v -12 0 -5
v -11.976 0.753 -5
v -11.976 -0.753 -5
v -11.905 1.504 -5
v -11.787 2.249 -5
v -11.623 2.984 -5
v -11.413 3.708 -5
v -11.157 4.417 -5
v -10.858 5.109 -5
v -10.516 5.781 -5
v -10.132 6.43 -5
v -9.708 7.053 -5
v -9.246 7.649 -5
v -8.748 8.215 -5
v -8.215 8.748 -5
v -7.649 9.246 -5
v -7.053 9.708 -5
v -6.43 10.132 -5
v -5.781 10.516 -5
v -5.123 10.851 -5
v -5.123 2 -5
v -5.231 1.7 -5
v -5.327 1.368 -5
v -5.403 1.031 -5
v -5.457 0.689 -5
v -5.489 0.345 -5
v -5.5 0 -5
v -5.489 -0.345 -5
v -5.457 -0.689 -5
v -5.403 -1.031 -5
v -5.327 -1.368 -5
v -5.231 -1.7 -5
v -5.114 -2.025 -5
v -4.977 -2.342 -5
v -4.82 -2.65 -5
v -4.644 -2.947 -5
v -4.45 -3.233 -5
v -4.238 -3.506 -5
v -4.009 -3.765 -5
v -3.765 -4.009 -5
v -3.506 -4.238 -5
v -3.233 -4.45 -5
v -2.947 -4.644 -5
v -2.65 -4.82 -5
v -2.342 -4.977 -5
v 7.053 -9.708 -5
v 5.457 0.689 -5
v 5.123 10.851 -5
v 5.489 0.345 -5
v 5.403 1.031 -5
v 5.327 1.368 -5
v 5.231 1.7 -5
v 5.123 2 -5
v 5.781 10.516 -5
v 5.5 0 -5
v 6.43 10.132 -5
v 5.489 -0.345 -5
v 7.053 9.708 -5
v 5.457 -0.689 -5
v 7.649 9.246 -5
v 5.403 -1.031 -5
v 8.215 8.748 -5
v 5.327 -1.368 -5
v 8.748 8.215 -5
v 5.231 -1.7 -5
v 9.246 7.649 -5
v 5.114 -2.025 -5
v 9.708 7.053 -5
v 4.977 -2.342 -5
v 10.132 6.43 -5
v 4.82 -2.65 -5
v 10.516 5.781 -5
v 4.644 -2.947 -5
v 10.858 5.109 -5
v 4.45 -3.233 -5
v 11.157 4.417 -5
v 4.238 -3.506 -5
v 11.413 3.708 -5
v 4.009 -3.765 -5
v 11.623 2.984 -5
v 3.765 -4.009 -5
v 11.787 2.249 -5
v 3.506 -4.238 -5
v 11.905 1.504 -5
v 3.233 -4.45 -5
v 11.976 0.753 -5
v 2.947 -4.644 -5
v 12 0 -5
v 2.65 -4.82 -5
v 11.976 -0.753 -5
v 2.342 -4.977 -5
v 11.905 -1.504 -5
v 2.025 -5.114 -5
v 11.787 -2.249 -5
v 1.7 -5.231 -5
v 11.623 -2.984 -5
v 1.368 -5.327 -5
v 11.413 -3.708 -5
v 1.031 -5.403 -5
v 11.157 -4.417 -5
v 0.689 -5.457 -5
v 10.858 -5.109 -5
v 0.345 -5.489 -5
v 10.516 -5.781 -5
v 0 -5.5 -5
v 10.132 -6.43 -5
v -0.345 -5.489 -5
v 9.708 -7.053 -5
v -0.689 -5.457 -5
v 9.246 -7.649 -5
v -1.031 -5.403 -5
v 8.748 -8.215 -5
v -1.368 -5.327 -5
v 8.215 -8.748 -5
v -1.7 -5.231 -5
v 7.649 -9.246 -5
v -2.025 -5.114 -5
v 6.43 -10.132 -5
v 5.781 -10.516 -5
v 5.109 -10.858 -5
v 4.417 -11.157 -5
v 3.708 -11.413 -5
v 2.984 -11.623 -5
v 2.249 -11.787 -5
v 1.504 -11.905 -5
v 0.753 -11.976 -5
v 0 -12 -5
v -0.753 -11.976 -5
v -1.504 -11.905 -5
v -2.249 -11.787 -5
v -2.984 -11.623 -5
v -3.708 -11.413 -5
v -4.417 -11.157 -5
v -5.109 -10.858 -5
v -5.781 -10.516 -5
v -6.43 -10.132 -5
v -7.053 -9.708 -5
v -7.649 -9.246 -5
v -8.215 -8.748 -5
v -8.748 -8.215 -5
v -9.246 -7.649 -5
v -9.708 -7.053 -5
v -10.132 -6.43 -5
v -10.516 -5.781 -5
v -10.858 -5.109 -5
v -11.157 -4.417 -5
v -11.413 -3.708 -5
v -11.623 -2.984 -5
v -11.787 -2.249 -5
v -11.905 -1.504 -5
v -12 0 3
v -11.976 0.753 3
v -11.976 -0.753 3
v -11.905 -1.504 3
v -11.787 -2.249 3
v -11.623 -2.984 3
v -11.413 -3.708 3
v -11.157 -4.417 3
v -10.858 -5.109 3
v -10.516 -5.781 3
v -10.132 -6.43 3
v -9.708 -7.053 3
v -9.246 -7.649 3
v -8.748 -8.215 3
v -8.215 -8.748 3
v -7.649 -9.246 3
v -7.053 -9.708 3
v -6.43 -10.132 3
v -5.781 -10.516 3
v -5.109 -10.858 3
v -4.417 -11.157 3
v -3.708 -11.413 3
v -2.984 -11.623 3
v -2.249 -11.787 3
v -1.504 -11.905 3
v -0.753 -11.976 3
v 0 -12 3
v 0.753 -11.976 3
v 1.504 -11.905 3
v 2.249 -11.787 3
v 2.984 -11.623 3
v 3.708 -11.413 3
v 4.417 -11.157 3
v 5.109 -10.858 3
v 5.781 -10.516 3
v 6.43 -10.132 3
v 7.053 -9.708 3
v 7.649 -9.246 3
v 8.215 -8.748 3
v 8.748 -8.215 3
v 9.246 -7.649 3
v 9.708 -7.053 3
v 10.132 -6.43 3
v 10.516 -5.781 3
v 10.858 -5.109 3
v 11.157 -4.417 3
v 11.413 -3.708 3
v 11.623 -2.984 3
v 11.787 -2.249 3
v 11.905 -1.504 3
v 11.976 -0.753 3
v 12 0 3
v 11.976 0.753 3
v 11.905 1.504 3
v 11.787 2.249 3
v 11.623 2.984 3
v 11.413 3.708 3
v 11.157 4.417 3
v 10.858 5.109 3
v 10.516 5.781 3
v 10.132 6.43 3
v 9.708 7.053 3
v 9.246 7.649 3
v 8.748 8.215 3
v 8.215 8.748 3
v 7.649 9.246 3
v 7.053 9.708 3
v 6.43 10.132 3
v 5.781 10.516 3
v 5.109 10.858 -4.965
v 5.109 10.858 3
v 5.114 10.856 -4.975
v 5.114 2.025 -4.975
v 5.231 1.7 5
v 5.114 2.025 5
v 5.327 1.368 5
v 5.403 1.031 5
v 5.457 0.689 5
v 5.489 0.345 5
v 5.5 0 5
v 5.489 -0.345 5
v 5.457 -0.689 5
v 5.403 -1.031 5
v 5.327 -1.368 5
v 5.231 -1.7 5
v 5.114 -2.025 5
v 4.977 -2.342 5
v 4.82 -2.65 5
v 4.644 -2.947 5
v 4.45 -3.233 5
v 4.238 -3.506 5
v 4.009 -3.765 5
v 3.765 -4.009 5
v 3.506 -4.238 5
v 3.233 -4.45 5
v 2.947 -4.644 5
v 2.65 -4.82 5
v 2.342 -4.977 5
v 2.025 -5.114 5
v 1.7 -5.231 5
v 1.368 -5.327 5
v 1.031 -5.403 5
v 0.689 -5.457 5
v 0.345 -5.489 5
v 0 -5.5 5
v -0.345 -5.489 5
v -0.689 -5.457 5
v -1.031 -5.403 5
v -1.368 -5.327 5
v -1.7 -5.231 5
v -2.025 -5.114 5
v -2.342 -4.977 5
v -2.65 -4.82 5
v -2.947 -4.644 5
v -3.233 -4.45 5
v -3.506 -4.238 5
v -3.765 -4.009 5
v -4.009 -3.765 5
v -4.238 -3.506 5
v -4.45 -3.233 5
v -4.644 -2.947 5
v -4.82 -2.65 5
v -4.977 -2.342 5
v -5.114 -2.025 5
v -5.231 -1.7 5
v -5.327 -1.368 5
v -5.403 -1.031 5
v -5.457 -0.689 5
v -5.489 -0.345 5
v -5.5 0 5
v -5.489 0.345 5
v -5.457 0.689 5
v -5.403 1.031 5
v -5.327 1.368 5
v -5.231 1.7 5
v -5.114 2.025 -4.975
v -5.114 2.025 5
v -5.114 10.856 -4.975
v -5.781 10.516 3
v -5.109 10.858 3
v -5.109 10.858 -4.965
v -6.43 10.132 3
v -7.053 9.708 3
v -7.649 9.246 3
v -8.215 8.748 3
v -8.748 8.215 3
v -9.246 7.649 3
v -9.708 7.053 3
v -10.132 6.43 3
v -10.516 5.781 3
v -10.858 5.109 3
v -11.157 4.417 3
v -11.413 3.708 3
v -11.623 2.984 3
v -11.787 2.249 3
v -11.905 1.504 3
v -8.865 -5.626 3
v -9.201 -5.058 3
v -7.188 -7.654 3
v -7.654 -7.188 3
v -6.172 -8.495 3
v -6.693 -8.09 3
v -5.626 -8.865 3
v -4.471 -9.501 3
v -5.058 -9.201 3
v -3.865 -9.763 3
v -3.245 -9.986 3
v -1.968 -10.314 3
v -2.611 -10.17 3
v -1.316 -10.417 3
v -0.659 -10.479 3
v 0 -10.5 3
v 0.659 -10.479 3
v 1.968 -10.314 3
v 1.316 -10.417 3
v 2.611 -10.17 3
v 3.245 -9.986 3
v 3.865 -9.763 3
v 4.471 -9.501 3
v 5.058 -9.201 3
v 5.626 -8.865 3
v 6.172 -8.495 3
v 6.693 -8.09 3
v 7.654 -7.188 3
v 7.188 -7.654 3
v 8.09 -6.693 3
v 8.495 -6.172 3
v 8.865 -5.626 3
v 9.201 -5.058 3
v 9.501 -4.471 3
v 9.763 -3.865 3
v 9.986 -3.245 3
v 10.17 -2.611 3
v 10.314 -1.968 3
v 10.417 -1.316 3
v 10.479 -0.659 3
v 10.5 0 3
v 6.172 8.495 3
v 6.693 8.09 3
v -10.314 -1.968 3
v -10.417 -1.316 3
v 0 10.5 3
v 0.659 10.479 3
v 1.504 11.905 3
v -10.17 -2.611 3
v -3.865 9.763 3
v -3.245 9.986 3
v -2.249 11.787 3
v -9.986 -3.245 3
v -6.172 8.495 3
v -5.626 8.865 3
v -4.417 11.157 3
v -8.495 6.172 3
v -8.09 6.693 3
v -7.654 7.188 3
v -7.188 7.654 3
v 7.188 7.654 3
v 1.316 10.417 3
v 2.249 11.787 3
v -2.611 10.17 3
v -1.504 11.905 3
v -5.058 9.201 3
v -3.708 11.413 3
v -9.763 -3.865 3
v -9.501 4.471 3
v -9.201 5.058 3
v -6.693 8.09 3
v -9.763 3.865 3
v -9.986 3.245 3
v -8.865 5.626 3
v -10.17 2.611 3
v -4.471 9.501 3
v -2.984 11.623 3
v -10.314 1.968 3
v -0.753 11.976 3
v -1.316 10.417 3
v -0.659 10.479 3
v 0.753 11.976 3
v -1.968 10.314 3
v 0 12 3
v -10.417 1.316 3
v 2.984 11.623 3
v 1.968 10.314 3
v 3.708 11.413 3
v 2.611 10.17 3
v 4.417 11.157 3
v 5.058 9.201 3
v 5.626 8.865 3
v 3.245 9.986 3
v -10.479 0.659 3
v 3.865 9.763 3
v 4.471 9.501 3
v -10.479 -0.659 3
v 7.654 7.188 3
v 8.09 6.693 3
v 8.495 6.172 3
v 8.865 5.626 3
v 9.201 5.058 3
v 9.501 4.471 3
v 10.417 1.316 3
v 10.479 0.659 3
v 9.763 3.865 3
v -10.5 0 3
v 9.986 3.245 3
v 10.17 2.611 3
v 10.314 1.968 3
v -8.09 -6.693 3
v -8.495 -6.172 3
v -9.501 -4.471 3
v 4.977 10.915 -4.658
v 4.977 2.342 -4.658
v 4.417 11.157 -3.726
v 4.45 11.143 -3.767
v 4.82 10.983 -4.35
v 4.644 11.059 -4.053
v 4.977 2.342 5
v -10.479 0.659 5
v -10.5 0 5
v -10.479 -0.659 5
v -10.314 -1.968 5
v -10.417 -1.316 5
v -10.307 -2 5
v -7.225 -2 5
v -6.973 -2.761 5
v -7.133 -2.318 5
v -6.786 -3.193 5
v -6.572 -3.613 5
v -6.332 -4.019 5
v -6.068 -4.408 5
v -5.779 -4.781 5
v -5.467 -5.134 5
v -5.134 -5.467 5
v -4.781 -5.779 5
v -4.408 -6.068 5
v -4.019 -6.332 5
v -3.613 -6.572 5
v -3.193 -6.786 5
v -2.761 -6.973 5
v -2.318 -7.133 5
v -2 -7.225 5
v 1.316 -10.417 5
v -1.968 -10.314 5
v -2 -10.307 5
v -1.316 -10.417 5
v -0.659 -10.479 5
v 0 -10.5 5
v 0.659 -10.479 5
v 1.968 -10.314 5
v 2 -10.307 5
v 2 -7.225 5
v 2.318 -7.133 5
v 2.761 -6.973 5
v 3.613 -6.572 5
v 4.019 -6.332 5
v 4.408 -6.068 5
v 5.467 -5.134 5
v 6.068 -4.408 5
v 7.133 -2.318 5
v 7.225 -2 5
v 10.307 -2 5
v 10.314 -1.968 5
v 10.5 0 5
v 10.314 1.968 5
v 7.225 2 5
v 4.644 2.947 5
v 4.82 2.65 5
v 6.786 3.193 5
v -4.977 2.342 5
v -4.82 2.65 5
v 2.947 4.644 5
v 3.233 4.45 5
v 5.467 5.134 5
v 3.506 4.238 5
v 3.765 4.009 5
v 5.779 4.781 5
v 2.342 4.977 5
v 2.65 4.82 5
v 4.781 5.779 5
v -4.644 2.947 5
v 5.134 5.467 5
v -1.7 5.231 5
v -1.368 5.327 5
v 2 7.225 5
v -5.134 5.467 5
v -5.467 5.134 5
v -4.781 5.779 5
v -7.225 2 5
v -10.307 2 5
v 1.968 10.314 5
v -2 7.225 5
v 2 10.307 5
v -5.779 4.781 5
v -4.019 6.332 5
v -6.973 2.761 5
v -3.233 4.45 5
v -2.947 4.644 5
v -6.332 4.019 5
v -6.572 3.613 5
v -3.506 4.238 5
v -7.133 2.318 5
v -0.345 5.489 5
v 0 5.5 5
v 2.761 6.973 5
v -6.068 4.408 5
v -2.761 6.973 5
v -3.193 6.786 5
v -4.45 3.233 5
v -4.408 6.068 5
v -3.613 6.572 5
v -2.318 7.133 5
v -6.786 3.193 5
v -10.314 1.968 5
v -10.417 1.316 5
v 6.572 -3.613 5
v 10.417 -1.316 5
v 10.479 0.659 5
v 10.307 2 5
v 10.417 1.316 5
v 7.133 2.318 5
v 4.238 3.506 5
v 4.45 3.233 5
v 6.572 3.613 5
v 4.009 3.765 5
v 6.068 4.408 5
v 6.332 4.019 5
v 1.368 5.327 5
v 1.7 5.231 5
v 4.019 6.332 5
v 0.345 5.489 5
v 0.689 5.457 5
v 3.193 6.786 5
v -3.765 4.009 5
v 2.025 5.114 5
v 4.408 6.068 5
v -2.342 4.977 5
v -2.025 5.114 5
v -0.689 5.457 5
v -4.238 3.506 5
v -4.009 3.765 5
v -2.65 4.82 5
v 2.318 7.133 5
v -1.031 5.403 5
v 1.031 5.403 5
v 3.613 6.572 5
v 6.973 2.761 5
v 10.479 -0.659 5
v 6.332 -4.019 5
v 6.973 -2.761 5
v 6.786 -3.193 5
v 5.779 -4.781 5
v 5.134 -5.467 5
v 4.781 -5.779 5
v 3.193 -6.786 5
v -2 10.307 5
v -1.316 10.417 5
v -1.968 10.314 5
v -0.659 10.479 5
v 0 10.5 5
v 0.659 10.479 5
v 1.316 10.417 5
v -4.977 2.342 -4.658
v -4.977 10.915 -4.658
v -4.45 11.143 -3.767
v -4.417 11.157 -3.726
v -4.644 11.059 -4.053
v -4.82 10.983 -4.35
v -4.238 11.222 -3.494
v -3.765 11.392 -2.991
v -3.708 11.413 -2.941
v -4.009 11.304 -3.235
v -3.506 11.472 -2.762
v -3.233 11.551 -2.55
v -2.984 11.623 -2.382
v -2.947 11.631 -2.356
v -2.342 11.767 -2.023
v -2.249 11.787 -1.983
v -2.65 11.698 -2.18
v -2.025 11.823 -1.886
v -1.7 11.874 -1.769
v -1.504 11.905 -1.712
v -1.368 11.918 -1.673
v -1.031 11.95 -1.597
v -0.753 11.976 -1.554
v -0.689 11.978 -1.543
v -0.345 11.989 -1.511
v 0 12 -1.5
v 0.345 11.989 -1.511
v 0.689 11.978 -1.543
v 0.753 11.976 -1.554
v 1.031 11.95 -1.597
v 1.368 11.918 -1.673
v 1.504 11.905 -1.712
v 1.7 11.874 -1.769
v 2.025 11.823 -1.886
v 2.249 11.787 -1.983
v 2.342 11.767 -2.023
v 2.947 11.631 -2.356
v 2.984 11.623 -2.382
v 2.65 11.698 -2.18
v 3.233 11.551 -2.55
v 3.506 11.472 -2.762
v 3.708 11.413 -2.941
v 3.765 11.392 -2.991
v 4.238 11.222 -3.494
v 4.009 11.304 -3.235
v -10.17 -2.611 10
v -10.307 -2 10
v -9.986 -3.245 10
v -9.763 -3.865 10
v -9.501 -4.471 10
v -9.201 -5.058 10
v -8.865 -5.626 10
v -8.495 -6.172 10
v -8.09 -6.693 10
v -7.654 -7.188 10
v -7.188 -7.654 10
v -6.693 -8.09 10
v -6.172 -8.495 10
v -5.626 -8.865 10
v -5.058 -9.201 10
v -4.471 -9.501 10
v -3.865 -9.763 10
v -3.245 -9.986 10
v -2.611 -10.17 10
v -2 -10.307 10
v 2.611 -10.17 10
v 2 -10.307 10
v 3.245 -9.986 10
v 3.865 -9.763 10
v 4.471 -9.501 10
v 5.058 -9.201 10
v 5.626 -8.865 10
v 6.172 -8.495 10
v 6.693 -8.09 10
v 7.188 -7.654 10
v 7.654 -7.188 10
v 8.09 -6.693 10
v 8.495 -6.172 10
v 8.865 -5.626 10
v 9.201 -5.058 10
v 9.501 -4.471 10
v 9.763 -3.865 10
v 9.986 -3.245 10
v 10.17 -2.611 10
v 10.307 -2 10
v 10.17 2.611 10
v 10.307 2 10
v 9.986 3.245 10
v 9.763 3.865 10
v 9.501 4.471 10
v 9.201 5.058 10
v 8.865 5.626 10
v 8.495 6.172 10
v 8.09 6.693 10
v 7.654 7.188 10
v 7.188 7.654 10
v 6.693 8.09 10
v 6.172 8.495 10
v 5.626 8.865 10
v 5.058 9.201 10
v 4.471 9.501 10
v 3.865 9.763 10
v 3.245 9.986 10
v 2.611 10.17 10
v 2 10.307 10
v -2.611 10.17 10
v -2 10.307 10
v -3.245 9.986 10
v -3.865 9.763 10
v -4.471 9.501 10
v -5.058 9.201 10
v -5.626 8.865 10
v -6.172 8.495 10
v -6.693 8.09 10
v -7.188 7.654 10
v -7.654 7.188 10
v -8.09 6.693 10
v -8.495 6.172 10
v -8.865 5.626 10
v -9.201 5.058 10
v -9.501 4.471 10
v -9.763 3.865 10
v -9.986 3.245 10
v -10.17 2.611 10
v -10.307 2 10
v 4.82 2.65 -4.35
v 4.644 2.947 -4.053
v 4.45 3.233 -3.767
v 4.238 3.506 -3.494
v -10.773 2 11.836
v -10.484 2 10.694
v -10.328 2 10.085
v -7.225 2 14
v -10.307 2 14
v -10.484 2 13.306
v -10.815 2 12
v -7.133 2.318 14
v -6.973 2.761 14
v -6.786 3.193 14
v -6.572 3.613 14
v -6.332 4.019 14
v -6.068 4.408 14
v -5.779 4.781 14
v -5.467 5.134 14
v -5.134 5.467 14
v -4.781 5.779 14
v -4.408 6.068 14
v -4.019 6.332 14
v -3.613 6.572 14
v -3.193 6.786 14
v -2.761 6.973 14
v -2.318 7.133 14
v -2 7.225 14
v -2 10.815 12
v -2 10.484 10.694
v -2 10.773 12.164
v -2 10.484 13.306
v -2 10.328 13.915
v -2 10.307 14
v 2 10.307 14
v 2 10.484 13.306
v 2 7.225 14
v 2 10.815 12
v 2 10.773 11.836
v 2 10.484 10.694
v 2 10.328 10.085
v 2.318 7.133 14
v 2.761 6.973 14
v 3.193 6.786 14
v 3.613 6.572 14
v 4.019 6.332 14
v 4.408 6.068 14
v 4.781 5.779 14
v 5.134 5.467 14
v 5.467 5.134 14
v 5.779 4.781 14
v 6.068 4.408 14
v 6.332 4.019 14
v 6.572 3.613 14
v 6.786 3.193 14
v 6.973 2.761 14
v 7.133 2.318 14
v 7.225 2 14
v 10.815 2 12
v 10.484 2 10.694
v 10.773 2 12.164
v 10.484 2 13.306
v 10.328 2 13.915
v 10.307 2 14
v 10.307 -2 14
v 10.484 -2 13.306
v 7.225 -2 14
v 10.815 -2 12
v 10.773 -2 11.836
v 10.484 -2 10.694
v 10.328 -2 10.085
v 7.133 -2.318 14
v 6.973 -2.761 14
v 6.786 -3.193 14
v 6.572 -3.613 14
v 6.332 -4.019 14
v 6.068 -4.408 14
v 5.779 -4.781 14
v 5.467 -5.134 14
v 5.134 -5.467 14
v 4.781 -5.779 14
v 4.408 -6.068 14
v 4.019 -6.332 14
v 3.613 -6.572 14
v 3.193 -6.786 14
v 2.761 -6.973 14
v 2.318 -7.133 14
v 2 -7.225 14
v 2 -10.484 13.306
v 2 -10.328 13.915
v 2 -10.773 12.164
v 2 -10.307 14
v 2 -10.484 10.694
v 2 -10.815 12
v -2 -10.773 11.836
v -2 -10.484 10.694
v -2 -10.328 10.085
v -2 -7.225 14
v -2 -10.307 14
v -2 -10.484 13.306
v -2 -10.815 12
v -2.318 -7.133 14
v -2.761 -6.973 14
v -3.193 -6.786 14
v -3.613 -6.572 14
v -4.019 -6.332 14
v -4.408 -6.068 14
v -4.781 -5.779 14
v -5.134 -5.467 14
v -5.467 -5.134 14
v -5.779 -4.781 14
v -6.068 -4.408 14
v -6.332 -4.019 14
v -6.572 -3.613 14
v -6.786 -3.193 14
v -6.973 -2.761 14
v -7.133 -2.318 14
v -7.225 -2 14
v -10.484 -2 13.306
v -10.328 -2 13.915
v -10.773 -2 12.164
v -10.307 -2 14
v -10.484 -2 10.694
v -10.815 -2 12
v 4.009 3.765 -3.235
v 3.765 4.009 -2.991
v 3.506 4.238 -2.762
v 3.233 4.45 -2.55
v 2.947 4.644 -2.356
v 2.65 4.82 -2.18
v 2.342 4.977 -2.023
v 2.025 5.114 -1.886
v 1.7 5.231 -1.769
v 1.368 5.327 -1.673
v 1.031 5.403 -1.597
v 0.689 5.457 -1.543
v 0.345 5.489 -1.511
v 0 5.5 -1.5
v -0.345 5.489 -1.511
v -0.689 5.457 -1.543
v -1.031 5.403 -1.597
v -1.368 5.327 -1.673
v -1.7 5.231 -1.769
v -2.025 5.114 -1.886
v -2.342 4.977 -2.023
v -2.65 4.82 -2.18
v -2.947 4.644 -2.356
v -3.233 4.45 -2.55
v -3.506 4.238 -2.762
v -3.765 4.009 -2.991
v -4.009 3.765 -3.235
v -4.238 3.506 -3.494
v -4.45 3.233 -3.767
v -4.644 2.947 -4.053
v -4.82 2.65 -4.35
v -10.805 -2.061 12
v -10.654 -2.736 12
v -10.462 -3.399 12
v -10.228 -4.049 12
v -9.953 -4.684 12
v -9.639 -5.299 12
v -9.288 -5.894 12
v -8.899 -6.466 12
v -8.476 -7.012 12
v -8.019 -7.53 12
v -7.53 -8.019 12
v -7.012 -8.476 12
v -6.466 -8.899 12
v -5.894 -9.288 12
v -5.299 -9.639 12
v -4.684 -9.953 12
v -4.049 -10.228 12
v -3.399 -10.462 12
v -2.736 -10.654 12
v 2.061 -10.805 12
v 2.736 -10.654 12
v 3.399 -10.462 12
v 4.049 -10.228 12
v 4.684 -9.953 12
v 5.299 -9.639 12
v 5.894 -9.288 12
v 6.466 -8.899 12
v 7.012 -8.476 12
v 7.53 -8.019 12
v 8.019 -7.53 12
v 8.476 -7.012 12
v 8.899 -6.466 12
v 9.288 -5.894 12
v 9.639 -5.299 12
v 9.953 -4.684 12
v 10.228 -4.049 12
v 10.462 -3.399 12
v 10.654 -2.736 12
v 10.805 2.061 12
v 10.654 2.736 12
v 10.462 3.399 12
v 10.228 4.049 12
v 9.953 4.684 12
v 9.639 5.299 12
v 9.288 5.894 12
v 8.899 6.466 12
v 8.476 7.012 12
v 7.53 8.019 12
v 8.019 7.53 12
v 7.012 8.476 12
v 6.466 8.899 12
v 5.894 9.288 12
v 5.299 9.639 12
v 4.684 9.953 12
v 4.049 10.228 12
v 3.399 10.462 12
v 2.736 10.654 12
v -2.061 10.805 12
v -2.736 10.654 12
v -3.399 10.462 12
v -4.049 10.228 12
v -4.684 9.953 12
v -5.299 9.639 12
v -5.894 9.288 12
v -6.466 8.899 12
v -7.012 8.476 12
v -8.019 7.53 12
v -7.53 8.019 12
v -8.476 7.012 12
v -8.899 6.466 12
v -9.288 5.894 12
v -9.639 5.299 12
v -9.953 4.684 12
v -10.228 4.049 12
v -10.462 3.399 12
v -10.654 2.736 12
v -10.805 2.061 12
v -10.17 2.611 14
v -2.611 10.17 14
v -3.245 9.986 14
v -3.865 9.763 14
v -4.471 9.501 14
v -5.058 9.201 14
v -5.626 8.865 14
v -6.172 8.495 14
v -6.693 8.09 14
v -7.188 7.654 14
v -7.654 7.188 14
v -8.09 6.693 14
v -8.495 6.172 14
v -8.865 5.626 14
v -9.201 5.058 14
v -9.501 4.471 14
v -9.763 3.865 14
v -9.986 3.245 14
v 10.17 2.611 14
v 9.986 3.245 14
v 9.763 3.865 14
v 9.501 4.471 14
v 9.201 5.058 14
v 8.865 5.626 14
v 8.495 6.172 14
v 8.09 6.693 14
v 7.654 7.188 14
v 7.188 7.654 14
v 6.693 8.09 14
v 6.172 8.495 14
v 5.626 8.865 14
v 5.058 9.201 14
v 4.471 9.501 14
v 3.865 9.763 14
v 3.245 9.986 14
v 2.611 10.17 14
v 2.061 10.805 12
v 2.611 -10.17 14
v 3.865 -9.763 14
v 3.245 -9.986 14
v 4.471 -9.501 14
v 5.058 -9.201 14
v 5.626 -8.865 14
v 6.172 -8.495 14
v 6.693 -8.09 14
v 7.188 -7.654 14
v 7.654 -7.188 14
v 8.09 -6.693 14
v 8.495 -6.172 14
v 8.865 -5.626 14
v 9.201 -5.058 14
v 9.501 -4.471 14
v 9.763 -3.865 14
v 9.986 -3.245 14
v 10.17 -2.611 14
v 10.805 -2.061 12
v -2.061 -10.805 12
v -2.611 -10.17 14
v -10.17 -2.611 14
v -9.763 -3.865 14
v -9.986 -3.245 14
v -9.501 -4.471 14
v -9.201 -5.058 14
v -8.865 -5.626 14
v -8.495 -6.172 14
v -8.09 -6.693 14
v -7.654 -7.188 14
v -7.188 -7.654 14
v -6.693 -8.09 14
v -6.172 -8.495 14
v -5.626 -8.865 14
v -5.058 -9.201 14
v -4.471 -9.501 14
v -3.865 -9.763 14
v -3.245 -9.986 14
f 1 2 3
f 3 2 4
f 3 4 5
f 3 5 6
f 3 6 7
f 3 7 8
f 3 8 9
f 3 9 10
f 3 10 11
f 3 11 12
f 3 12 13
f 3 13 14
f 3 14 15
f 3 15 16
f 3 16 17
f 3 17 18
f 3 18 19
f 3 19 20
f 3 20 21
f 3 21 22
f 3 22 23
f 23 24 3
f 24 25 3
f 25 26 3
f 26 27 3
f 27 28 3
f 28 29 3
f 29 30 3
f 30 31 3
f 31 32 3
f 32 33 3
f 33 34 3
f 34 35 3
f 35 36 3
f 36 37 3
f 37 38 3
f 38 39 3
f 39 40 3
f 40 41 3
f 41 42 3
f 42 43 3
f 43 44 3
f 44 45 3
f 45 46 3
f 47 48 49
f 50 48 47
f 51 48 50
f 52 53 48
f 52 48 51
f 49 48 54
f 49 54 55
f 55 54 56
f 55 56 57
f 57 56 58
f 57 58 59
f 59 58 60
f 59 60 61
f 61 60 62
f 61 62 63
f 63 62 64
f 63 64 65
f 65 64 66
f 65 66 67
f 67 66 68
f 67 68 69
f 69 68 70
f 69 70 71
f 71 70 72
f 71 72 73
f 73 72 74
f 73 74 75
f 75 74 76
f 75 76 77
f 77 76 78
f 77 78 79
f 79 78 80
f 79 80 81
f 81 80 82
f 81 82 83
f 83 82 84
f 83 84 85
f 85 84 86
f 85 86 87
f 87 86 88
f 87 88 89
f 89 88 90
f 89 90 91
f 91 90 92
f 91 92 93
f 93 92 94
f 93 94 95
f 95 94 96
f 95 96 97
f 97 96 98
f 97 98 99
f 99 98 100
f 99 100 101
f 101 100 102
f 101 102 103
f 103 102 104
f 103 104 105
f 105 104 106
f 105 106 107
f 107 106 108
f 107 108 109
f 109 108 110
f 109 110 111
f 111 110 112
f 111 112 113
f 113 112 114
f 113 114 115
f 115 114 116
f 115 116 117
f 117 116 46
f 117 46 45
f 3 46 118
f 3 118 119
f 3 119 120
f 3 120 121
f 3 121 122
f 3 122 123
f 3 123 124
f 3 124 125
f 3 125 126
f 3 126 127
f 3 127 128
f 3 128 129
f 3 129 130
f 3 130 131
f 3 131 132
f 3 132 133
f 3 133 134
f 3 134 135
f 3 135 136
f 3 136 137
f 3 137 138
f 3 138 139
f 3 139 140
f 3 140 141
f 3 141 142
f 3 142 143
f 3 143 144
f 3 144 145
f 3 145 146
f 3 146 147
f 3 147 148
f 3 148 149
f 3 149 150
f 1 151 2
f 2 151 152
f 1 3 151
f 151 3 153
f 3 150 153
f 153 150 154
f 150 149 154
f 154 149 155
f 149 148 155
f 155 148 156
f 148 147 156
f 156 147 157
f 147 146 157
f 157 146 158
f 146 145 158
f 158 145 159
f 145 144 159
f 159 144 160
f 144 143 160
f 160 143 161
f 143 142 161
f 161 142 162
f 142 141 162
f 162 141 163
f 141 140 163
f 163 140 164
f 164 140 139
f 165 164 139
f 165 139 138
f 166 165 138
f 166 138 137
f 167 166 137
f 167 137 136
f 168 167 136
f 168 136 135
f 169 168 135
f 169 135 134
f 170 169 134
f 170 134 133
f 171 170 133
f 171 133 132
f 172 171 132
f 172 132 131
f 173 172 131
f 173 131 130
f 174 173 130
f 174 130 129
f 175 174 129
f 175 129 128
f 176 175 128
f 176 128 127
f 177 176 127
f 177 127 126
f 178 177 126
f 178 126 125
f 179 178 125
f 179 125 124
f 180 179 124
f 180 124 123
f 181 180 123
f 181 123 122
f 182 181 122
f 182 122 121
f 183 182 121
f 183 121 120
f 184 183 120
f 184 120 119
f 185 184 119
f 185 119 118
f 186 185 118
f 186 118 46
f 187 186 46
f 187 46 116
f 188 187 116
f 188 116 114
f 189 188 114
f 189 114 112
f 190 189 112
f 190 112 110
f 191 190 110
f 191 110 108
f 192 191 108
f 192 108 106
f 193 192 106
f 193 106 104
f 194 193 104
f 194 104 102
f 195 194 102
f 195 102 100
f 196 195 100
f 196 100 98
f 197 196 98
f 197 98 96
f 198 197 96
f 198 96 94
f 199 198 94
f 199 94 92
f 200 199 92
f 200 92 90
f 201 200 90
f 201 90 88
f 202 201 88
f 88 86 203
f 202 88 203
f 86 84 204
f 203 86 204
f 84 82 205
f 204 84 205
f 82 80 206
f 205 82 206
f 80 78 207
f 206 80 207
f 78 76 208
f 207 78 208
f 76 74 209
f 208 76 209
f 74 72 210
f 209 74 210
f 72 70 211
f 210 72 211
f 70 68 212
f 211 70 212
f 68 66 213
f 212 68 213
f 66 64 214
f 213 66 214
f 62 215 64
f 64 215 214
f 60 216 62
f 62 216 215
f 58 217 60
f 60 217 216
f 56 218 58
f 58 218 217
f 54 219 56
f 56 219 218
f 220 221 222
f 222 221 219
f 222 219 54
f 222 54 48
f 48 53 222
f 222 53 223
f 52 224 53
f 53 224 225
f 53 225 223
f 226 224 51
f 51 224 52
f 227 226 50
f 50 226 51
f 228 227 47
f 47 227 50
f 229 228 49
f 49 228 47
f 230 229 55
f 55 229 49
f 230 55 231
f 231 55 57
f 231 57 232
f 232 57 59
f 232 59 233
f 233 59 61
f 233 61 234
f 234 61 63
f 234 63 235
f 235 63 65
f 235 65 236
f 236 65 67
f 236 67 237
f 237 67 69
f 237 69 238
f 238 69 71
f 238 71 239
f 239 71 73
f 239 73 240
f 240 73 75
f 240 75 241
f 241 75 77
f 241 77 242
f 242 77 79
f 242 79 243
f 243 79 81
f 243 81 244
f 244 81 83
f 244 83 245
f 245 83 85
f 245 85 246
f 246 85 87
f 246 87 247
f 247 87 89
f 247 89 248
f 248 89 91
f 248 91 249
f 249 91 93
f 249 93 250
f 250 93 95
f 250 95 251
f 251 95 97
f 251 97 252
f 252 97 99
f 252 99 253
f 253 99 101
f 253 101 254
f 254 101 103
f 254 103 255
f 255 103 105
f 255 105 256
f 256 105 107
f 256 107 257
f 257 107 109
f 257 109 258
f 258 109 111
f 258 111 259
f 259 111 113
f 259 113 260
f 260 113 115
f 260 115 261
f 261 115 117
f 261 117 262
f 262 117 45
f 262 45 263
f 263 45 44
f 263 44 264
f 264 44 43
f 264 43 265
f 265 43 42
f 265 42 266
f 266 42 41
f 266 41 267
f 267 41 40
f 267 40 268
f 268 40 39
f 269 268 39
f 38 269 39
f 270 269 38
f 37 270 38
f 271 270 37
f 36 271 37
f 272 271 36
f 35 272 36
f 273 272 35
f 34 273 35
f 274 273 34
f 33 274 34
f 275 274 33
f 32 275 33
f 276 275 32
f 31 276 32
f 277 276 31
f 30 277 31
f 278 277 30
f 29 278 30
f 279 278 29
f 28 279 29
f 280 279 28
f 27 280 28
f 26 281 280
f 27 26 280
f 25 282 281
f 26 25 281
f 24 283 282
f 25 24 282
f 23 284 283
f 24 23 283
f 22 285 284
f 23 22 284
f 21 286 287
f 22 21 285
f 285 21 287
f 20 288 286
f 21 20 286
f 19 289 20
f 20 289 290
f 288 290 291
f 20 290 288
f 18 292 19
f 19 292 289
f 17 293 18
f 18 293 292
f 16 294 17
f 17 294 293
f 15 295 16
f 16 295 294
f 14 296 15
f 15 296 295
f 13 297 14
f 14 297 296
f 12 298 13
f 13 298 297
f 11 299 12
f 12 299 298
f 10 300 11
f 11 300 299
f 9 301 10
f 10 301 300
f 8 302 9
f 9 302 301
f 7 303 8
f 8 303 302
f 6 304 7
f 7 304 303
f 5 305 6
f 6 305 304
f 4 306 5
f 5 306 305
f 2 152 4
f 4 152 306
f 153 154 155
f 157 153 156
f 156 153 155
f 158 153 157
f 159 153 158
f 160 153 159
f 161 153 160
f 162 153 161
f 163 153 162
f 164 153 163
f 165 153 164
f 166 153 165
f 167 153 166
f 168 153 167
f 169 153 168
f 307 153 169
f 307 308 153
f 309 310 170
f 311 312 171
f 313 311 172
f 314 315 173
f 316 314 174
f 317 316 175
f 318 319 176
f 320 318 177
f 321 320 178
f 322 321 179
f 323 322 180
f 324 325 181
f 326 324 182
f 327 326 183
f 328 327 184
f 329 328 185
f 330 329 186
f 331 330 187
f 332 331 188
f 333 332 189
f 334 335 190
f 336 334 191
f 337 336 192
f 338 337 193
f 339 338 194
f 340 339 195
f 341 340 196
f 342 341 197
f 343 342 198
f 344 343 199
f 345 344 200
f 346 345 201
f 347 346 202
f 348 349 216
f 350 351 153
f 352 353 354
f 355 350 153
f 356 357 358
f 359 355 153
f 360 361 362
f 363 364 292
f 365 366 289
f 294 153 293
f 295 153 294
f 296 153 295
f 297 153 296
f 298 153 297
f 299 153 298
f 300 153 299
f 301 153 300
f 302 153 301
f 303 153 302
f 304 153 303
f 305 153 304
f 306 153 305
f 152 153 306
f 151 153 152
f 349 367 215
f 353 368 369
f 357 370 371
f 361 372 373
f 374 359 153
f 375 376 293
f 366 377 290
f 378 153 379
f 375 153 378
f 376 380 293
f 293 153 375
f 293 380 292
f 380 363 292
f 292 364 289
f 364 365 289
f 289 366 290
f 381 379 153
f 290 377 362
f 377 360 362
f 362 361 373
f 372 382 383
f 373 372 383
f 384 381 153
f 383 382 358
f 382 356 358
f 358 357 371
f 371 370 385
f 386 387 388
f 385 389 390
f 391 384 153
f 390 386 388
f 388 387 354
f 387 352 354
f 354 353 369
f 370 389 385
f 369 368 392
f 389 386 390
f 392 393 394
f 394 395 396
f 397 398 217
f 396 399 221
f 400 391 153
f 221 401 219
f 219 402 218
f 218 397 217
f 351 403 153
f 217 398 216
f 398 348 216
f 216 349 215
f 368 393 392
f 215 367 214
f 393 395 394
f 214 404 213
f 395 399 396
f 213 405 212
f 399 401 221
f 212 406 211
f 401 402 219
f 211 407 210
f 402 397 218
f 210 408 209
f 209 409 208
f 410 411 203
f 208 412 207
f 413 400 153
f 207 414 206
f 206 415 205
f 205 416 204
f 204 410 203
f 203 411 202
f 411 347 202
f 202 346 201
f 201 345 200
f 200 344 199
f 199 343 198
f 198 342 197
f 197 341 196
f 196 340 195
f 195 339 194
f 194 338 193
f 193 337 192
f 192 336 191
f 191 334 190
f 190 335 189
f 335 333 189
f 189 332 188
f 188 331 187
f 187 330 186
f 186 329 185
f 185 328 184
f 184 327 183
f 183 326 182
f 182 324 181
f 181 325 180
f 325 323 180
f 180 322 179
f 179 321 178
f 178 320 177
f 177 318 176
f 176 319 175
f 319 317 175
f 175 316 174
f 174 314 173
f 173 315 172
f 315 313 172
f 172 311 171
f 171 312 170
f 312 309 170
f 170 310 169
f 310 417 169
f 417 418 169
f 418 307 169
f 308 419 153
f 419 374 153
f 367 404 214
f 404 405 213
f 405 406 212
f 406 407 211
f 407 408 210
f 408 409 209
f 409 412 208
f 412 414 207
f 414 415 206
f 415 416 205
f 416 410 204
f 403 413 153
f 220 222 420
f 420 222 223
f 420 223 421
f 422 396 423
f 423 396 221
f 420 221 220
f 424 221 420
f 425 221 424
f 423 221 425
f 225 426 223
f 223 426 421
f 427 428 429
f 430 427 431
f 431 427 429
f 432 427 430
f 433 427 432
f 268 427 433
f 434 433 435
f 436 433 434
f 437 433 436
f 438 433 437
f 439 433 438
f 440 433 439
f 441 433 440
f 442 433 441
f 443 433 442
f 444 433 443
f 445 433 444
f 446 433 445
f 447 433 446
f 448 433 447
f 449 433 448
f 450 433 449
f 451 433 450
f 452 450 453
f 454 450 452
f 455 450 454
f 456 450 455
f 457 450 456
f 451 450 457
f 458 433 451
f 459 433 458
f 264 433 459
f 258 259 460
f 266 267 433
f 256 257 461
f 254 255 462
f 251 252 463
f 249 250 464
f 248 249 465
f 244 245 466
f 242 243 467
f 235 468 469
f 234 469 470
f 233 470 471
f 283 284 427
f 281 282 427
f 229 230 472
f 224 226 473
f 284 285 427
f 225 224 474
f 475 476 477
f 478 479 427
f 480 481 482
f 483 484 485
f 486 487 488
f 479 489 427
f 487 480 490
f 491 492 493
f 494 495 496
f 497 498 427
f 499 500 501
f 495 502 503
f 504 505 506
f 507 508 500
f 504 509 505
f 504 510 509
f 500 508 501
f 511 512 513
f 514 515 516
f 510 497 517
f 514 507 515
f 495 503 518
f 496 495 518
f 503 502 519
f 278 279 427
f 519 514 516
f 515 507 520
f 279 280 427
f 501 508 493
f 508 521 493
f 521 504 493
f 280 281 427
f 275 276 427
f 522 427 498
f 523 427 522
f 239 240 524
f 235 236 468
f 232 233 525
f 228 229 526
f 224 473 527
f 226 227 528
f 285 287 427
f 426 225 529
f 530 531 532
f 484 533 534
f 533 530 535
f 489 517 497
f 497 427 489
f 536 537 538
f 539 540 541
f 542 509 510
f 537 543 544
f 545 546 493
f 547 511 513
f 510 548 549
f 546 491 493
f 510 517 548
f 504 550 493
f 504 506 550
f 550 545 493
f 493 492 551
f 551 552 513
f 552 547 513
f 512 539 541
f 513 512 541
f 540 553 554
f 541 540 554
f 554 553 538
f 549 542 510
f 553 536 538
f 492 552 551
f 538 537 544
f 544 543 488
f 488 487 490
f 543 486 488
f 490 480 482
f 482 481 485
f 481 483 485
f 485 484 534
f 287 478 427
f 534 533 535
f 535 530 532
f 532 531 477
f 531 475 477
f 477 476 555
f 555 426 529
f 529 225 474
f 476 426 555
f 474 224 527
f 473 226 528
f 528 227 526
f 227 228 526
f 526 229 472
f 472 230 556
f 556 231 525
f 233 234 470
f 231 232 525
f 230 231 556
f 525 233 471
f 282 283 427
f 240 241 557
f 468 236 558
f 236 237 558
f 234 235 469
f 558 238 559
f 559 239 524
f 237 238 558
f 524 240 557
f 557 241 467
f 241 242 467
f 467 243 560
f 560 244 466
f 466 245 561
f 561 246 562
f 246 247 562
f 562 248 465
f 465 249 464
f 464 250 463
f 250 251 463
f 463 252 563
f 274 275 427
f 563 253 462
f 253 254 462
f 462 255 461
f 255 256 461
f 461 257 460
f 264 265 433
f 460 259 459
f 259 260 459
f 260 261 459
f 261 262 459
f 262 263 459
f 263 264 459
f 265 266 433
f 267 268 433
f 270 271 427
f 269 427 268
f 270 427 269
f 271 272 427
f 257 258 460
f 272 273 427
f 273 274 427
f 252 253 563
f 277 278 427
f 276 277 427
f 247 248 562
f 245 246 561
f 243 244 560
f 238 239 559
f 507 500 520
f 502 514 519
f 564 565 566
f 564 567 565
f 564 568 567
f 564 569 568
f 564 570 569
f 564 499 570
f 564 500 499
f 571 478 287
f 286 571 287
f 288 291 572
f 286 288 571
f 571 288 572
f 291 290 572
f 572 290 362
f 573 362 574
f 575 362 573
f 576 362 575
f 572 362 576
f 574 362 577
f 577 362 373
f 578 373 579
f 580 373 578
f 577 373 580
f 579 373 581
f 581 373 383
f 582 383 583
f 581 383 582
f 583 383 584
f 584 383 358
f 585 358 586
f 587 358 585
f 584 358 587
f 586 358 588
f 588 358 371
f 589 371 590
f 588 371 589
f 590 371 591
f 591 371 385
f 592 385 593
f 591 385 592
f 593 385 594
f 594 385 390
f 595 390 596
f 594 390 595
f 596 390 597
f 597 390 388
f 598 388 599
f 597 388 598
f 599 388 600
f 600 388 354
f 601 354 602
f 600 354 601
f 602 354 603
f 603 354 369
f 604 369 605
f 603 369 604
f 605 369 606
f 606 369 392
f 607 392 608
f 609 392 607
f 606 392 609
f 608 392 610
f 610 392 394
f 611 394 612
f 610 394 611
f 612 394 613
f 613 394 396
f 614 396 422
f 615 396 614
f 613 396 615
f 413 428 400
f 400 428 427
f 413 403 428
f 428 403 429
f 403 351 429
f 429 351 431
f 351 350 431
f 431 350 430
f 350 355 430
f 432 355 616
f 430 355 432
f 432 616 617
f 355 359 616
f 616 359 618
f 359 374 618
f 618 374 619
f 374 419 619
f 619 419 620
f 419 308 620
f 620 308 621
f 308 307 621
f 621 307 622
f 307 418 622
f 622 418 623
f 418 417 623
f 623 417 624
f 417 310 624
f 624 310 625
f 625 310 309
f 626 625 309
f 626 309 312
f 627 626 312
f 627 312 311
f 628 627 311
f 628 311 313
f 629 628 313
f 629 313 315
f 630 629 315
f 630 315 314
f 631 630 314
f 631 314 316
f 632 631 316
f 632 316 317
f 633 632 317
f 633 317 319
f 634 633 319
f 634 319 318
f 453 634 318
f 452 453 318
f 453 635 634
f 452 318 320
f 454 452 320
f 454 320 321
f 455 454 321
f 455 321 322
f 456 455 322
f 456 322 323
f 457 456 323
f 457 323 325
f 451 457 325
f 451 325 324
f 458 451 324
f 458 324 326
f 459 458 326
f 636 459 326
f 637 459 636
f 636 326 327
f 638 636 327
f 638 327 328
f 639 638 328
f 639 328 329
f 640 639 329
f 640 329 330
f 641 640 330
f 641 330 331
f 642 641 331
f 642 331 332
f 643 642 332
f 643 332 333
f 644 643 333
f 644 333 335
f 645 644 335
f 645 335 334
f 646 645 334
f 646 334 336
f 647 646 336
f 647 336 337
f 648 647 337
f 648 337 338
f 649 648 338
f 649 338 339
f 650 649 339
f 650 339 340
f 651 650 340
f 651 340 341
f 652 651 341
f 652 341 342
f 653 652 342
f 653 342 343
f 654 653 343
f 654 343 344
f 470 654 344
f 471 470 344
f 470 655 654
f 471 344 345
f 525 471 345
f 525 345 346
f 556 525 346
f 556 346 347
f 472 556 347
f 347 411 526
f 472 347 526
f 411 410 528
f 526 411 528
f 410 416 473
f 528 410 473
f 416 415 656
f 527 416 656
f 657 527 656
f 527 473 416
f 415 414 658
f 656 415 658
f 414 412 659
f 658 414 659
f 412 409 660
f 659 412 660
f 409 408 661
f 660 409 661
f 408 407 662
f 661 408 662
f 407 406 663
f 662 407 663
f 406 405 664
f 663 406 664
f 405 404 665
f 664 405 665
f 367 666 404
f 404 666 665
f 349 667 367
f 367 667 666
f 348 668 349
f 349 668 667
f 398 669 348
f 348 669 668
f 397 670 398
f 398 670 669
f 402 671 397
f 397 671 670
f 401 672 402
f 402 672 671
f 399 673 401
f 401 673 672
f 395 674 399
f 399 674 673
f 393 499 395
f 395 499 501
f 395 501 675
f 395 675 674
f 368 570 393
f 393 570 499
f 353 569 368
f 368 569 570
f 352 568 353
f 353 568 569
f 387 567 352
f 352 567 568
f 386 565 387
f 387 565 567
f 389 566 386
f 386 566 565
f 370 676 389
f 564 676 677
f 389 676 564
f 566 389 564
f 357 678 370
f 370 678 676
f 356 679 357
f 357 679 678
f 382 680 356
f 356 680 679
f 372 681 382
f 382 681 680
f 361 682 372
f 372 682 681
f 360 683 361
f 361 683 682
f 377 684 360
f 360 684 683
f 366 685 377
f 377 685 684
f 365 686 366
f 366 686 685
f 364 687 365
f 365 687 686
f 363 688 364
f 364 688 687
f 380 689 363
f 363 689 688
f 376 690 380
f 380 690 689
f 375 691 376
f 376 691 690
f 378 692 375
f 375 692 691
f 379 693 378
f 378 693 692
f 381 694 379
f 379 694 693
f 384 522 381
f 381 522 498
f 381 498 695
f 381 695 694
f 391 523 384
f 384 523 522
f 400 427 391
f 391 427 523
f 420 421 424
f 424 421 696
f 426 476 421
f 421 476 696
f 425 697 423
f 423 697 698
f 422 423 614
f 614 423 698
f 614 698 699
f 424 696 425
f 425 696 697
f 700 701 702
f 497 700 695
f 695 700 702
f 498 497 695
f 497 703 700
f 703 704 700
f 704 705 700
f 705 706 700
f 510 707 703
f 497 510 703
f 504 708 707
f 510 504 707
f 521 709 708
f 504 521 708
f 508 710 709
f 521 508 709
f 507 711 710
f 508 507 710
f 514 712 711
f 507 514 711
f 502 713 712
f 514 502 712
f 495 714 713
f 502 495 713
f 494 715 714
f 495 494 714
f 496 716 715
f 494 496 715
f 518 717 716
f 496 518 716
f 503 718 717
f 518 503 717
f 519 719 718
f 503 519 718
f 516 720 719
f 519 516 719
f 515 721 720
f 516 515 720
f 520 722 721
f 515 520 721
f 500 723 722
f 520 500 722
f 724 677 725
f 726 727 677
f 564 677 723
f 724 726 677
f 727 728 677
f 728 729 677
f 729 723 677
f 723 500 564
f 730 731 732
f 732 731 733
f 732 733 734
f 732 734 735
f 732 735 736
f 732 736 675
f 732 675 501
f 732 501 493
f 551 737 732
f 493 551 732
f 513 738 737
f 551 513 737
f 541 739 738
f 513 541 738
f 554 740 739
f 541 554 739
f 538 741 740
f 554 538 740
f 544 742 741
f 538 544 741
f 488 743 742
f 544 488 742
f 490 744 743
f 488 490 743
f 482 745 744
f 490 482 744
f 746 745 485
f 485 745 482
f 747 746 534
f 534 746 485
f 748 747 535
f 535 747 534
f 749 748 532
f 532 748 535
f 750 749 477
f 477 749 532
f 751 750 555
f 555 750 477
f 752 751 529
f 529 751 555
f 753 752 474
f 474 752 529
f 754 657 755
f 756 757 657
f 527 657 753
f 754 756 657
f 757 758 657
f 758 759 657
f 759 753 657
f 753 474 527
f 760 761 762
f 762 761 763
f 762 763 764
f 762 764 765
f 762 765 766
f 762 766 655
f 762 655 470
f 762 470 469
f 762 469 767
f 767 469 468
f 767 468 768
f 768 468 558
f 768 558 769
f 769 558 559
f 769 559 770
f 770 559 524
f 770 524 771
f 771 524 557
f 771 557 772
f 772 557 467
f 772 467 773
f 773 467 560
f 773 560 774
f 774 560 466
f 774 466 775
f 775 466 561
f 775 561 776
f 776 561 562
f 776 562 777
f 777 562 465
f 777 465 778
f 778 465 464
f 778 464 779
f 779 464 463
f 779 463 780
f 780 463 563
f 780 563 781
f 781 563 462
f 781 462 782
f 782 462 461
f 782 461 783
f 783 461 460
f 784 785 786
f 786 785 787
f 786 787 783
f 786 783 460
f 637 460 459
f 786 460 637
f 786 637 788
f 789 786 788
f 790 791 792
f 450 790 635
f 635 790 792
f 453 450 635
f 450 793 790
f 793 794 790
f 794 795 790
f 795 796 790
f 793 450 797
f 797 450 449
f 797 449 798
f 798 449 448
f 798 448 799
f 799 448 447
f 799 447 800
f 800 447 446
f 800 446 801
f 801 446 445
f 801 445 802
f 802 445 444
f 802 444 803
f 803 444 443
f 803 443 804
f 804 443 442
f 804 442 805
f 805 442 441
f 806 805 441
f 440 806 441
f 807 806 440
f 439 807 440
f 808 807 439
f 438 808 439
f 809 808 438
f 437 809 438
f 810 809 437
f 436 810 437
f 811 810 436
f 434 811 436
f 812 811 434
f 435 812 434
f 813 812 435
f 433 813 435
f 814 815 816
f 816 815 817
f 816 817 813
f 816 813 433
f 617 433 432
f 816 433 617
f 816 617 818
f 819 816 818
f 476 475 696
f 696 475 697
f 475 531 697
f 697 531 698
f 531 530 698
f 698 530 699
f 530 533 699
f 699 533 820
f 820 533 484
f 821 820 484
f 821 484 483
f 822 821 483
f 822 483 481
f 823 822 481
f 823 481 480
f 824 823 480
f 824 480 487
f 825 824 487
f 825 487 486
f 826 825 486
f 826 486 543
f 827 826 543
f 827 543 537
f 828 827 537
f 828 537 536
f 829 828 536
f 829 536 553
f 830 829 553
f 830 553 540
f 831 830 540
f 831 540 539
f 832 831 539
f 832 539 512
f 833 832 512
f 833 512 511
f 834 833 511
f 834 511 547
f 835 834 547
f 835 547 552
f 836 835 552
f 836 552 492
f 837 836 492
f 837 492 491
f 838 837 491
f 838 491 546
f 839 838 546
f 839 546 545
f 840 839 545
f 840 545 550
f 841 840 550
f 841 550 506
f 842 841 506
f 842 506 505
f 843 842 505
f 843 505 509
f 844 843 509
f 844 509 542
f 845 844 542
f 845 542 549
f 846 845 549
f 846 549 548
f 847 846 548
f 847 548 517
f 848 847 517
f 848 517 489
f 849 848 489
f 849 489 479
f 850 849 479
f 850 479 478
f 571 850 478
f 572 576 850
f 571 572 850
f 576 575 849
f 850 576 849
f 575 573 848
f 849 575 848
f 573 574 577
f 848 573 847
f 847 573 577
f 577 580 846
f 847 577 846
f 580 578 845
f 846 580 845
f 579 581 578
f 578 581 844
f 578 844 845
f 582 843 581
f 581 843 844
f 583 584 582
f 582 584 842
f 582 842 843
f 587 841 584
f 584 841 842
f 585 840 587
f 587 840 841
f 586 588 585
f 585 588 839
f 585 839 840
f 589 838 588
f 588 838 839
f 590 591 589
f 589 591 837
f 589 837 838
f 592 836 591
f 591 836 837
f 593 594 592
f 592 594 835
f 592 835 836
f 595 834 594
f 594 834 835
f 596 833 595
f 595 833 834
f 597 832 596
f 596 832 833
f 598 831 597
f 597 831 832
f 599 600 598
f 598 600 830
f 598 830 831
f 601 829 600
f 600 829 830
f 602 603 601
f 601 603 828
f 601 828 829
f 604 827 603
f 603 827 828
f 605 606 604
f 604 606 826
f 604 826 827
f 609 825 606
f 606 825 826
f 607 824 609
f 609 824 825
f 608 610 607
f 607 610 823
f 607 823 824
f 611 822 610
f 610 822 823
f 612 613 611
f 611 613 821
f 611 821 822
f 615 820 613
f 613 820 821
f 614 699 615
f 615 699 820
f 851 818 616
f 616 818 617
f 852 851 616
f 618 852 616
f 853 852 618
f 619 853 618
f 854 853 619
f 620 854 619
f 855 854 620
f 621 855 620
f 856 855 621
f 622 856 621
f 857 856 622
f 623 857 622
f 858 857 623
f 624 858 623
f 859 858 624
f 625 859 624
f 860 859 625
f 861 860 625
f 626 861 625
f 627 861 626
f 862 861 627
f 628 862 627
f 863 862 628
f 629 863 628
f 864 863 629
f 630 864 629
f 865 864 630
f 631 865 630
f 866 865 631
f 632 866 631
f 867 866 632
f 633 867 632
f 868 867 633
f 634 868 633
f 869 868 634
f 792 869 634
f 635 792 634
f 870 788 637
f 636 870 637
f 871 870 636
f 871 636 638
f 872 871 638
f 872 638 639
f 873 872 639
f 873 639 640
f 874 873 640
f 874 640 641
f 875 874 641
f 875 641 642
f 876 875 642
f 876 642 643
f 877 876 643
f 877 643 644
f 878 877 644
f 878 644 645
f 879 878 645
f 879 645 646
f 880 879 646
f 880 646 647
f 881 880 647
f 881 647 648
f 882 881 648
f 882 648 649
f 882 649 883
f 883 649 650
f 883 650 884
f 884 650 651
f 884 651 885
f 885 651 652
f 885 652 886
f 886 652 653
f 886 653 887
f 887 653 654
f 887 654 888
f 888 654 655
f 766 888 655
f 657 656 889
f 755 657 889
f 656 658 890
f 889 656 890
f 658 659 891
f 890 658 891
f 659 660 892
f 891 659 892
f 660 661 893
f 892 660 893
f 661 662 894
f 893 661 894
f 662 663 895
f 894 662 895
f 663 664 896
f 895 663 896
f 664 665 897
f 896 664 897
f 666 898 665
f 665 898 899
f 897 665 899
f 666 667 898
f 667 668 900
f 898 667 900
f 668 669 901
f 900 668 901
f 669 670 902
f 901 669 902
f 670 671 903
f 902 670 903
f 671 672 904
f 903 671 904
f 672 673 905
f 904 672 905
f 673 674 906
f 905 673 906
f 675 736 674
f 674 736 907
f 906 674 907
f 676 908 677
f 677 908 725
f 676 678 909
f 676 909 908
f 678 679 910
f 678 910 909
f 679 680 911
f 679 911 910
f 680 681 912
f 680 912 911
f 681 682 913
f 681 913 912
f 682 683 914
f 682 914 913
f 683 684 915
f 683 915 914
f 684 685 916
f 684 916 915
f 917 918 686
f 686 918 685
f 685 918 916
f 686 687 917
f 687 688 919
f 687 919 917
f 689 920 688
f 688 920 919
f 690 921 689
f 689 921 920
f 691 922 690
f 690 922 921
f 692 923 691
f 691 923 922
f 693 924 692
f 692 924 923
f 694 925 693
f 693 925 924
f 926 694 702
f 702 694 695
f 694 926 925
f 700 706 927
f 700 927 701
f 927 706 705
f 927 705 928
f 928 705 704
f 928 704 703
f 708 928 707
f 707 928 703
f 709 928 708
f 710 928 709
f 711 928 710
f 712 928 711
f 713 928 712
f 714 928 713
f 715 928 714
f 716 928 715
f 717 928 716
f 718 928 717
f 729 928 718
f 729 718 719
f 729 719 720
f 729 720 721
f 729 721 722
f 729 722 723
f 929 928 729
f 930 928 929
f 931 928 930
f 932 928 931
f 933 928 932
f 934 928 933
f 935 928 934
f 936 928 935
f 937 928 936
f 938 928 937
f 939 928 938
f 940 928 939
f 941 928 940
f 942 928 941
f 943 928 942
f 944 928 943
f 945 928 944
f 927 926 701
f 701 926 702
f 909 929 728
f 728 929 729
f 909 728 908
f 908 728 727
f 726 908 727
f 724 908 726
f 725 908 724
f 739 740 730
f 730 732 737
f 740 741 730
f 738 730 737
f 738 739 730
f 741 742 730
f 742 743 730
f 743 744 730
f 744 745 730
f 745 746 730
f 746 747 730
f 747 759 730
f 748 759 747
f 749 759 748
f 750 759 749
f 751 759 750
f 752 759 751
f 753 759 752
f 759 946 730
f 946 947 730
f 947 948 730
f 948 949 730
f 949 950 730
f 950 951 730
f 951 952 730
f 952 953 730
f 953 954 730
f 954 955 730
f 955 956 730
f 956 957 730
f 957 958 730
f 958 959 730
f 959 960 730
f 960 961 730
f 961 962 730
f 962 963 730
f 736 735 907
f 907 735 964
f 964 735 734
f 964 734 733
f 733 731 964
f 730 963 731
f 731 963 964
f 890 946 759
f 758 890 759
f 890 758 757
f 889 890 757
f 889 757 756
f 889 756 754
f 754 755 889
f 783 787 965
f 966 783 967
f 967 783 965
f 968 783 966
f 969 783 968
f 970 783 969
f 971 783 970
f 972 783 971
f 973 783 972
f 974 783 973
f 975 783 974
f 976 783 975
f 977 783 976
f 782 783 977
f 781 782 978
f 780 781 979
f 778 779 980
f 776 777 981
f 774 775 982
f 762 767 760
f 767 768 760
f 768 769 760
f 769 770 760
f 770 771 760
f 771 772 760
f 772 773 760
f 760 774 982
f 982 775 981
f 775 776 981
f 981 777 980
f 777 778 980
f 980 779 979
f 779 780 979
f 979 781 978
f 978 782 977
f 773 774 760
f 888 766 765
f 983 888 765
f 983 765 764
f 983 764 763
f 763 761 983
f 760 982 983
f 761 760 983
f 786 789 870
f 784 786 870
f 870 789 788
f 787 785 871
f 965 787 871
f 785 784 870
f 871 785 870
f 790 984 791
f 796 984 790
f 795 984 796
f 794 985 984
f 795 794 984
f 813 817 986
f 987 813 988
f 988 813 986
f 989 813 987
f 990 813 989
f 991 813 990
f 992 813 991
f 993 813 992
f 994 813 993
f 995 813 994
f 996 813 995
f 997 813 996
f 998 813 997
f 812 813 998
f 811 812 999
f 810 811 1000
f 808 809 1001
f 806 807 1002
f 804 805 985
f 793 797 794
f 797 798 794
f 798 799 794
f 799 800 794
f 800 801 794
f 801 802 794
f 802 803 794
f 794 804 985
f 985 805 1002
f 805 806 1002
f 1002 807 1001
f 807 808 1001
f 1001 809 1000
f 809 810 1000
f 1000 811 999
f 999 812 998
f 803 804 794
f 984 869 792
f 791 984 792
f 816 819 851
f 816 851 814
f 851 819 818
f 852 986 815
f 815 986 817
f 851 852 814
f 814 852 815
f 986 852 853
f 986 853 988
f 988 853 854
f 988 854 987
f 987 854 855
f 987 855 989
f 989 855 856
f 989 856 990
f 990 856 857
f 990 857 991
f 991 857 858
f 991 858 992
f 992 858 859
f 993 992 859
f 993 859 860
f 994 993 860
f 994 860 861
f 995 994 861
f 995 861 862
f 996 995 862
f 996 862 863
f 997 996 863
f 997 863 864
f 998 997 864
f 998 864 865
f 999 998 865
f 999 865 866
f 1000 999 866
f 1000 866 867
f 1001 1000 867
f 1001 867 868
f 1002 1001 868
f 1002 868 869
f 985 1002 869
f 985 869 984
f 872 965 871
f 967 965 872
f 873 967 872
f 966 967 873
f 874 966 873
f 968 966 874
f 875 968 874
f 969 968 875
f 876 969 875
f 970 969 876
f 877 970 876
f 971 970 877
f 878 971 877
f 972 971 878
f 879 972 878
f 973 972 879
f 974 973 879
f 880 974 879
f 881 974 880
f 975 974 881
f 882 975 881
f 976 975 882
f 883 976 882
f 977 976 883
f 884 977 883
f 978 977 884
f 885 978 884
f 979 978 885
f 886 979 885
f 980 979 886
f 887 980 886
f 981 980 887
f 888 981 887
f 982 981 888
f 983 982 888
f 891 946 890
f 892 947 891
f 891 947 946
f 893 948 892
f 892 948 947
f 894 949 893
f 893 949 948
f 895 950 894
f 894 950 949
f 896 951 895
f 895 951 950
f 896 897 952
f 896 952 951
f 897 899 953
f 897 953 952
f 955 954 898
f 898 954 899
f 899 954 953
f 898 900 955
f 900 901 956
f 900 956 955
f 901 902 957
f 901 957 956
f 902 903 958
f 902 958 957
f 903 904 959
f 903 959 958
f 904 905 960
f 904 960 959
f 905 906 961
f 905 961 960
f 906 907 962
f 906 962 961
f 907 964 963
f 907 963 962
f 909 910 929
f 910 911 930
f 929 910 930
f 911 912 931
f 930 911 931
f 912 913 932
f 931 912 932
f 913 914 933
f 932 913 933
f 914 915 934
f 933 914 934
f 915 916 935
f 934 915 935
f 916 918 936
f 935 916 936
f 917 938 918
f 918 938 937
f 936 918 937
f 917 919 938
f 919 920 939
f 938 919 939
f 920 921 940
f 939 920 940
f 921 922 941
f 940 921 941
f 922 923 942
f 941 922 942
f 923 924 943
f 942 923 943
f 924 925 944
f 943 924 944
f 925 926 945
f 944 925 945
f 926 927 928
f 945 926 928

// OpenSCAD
$fn=100;

plugOD = 24;
plugID = 11;
height = 10;
clipheight = 12;


annulus();
translate([0,0,clipheight/2+2]) clips();


module annulus(){

difference(){
cylinder(r=plugOD/2,h=height,center=true);

difference(){
translate([0,0,height-2]) cylinder(r=25/2,h=height,center=true);
translate([0,0,height-2]) cylinder(r=21/2,h=height,center=true);
}
cylinder(r=plugID/2,h=height+0.1,center=true);
translate([0,plugOD/2,-height/2-2]) rotate([90,0,0]) cylinder(r=plugID/2,h=plugOD,center=true);
}}


module clips(){
difference(){
union(){
cylinder(r=21/2,h=clipheight,center=true);
translate([0,0,clipheight/2-2]) cylinder(r1=22/2,r2=21/2,h=2);
translate([0,0,clipheight/2-4]) cylinder(r1=21/2,r2=22/2,h=2);
}
cylinder(r=15/2,h=clipheight+1, center=true);
cube([4,30,30],center=true);
cube([30,4,30],center=true);
}}
